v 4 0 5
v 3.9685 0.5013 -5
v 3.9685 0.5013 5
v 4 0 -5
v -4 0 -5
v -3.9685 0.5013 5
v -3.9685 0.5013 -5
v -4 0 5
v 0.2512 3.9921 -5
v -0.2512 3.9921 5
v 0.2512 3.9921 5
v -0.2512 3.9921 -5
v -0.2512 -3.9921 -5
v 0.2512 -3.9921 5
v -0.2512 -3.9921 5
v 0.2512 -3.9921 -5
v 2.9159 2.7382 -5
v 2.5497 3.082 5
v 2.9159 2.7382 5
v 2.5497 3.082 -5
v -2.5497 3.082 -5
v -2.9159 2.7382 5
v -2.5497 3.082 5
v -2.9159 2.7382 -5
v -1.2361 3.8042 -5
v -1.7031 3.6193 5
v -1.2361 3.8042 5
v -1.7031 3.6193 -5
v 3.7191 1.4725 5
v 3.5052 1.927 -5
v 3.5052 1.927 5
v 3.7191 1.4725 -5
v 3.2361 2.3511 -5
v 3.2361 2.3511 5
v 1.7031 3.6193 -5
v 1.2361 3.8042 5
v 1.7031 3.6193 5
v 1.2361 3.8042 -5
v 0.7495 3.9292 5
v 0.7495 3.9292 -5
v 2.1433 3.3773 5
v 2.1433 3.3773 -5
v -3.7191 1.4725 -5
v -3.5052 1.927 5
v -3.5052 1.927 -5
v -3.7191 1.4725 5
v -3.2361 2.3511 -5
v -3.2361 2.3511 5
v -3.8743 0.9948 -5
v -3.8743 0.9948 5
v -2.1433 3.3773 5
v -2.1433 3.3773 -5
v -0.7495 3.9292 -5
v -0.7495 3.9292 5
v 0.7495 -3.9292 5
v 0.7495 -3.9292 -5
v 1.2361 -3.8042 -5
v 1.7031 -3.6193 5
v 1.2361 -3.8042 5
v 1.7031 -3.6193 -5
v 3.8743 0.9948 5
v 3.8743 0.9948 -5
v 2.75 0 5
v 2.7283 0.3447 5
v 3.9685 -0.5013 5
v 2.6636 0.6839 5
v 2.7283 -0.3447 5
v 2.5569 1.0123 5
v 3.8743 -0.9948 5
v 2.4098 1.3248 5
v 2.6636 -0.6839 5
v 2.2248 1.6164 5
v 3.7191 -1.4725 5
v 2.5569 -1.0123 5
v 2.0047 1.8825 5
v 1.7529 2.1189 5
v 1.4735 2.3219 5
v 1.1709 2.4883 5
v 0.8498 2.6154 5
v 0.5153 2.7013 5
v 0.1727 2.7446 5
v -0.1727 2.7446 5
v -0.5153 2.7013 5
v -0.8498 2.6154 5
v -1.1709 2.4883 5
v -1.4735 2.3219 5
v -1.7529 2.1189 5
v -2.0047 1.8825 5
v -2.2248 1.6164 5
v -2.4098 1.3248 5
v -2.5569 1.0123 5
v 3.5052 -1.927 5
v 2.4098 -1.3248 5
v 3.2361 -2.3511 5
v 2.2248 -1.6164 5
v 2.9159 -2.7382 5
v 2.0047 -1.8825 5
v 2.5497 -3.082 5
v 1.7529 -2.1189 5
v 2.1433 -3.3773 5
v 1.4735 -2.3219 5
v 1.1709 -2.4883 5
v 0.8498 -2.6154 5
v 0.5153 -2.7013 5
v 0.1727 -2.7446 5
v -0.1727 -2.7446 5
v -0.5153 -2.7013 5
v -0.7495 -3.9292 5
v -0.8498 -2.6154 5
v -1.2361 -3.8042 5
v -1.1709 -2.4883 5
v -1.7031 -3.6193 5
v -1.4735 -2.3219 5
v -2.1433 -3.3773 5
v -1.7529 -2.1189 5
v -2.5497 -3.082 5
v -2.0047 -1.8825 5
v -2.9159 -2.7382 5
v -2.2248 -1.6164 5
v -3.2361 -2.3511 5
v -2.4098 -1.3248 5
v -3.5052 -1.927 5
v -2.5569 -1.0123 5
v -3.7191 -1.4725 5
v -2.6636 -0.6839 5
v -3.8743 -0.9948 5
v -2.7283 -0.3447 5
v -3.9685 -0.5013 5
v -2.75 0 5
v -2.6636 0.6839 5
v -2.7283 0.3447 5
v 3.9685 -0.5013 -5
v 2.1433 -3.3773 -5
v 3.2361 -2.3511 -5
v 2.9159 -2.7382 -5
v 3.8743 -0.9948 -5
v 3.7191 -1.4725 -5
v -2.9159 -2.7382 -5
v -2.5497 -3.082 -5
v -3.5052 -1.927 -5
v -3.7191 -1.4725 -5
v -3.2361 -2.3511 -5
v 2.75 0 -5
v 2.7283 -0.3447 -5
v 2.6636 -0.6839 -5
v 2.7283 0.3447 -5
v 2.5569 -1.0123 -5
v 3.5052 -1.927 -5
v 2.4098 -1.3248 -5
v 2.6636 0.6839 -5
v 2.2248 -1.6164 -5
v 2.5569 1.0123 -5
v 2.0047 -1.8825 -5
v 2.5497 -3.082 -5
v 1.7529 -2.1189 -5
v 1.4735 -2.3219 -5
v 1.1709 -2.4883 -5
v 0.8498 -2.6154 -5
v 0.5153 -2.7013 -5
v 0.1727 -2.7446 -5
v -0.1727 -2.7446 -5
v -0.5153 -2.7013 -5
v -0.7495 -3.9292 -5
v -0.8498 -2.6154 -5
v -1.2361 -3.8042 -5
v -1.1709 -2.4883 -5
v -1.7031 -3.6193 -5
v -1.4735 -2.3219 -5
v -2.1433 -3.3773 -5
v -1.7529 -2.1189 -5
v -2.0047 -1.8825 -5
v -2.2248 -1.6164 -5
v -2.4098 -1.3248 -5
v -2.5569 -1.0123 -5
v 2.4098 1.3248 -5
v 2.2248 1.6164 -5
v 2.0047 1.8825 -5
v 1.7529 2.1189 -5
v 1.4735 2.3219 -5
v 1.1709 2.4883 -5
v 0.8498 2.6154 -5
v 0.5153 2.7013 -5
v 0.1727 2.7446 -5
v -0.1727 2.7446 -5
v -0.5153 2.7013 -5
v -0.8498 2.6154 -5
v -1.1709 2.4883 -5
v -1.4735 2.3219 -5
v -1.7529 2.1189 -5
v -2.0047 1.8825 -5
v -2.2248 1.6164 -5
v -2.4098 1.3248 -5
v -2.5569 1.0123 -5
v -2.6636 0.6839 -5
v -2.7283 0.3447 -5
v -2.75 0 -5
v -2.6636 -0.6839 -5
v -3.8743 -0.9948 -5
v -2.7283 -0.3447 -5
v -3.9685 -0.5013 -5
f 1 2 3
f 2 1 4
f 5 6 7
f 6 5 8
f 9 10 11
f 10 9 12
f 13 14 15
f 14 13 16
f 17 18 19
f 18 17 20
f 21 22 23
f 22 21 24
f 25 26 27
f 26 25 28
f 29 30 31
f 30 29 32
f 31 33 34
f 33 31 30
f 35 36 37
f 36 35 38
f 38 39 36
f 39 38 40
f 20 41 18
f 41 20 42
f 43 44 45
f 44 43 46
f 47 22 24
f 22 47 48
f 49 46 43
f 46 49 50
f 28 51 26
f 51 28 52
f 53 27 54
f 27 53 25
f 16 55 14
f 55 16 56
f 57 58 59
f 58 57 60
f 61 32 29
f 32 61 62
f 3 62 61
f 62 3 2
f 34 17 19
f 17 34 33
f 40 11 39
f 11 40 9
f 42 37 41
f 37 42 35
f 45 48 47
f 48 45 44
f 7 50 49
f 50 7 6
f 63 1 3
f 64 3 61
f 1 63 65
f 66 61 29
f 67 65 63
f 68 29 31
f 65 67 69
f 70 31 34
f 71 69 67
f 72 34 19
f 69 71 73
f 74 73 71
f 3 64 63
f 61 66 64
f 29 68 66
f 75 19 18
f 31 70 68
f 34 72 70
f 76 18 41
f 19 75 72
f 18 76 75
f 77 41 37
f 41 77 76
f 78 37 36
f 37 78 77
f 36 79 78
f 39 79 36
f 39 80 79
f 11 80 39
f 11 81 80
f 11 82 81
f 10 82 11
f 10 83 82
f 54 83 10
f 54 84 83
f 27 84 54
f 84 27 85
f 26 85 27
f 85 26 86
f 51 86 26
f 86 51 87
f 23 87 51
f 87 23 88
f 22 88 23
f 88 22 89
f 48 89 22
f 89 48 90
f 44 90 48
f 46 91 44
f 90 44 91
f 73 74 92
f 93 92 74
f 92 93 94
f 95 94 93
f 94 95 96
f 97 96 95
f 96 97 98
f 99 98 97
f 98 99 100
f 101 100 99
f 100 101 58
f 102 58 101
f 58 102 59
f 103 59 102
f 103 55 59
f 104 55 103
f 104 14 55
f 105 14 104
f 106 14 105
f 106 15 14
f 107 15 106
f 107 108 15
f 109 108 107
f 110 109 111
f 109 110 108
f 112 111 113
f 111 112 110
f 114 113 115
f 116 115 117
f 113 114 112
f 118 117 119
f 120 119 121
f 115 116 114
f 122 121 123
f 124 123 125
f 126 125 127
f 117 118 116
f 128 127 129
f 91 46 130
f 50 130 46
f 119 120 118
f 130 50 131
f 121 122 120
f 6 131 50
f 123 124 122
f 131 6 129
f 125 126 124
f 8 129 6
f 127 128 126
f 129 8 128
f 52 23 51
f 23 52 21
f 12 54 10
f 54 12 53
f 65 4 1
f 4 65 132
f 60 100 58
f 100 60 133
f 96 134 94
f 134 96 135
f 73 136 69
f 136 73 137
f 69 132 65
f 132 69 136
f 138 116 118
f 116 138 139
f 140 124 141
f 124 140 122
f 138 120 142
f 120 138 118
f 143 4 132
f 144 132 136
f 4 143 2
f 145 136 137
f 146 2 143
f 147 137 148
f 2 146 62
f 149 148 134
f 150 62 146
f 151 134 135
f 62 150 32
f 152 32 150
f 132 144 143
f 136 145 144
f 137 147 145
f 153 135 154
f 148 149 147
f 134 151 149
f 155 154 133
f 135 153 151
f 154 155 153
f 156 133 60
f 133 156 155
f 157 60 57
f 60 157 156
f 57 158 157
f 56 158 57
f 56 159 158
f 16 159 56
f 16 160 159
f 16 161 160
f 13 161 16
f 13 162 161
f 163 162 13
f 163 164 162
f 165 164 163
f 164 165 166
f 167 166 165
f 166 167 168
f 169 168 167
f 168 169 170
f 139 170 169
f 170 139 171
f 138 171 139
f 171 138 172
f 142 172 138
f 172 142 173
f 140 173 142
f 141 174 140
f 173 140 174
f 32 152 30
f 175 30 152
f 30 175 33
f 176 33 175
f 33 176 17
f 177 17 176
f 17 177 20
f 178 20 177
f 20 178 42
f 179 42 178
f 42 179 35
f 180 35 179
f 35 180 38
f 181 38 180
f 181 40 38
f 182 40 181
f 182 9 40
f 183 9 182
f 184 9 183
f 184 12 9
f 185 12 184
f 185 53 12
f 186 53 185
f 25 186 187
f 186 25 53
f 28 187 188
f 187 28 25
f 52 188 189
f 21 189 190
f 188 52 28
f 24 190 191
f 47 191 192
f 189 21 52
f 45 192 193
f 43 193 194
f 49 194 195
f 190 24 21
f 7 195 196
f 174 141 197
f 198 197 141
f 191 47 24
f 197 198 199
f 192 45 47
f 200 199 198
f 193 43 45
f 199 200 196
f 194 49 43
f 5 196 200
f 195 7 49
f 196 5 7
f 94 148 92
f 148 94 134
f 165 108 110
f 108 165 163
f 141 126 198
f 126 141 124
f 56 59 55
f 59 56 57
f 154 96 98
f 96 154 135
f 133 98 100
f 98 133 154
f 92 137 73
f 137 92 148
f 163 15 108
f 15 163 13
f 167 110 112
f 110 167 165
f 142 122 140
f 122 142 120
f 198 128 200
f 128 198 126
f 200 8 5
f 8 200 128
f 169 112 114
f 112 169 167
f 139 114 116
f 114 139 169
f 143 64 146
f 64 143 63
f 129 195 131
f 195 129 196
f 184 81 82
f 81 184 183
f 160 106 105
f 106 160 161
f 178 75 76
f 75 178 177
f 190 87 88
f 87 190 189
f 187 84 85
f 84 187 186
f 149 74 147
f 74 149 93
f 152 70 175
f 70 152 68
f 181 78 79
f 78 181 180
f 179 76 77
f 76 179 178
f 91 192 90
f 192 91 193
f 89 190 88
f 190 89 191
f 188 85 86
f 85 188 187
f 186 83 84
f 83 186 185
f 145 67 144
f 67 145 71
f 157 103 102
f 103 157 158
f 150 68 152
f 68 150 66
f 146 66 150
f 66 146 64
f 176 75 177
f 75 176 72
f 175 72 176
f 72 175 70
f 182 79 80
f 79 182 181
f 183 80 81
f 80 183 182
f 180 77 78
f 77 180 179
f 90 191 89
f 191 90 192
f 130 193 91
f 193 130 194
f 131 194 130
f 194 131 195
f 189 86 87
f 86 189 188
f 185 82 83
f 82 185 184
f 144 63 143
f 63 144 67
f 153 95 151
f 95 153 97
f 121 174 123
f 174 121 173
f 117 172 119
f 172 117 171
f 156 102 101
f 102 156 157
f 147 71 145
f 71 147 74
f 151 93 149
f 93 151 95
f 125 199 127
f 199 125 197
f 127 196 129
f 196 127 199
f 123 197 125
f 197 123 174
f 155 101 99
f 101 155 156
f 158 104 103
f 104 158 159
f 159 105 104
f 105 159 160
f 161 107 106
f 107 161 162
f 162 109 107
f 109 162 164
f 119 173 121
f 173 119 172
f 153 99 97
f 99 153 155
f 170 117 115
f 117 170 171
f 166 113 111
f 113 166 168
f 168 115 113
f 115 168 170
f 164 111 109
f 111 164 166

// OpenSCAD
$fn = 50;


difference() {
	union() {
		translate(v = [0, 0, -5.0000000000]) {
			cylinder(h = 10, r = 4.0000000000);
		}
	}
	union() {
		translate(v = [0, 0, -100.0000000000]) {
			cylinder(h = 200, r = 2.7500000000);
		}
	}
}
